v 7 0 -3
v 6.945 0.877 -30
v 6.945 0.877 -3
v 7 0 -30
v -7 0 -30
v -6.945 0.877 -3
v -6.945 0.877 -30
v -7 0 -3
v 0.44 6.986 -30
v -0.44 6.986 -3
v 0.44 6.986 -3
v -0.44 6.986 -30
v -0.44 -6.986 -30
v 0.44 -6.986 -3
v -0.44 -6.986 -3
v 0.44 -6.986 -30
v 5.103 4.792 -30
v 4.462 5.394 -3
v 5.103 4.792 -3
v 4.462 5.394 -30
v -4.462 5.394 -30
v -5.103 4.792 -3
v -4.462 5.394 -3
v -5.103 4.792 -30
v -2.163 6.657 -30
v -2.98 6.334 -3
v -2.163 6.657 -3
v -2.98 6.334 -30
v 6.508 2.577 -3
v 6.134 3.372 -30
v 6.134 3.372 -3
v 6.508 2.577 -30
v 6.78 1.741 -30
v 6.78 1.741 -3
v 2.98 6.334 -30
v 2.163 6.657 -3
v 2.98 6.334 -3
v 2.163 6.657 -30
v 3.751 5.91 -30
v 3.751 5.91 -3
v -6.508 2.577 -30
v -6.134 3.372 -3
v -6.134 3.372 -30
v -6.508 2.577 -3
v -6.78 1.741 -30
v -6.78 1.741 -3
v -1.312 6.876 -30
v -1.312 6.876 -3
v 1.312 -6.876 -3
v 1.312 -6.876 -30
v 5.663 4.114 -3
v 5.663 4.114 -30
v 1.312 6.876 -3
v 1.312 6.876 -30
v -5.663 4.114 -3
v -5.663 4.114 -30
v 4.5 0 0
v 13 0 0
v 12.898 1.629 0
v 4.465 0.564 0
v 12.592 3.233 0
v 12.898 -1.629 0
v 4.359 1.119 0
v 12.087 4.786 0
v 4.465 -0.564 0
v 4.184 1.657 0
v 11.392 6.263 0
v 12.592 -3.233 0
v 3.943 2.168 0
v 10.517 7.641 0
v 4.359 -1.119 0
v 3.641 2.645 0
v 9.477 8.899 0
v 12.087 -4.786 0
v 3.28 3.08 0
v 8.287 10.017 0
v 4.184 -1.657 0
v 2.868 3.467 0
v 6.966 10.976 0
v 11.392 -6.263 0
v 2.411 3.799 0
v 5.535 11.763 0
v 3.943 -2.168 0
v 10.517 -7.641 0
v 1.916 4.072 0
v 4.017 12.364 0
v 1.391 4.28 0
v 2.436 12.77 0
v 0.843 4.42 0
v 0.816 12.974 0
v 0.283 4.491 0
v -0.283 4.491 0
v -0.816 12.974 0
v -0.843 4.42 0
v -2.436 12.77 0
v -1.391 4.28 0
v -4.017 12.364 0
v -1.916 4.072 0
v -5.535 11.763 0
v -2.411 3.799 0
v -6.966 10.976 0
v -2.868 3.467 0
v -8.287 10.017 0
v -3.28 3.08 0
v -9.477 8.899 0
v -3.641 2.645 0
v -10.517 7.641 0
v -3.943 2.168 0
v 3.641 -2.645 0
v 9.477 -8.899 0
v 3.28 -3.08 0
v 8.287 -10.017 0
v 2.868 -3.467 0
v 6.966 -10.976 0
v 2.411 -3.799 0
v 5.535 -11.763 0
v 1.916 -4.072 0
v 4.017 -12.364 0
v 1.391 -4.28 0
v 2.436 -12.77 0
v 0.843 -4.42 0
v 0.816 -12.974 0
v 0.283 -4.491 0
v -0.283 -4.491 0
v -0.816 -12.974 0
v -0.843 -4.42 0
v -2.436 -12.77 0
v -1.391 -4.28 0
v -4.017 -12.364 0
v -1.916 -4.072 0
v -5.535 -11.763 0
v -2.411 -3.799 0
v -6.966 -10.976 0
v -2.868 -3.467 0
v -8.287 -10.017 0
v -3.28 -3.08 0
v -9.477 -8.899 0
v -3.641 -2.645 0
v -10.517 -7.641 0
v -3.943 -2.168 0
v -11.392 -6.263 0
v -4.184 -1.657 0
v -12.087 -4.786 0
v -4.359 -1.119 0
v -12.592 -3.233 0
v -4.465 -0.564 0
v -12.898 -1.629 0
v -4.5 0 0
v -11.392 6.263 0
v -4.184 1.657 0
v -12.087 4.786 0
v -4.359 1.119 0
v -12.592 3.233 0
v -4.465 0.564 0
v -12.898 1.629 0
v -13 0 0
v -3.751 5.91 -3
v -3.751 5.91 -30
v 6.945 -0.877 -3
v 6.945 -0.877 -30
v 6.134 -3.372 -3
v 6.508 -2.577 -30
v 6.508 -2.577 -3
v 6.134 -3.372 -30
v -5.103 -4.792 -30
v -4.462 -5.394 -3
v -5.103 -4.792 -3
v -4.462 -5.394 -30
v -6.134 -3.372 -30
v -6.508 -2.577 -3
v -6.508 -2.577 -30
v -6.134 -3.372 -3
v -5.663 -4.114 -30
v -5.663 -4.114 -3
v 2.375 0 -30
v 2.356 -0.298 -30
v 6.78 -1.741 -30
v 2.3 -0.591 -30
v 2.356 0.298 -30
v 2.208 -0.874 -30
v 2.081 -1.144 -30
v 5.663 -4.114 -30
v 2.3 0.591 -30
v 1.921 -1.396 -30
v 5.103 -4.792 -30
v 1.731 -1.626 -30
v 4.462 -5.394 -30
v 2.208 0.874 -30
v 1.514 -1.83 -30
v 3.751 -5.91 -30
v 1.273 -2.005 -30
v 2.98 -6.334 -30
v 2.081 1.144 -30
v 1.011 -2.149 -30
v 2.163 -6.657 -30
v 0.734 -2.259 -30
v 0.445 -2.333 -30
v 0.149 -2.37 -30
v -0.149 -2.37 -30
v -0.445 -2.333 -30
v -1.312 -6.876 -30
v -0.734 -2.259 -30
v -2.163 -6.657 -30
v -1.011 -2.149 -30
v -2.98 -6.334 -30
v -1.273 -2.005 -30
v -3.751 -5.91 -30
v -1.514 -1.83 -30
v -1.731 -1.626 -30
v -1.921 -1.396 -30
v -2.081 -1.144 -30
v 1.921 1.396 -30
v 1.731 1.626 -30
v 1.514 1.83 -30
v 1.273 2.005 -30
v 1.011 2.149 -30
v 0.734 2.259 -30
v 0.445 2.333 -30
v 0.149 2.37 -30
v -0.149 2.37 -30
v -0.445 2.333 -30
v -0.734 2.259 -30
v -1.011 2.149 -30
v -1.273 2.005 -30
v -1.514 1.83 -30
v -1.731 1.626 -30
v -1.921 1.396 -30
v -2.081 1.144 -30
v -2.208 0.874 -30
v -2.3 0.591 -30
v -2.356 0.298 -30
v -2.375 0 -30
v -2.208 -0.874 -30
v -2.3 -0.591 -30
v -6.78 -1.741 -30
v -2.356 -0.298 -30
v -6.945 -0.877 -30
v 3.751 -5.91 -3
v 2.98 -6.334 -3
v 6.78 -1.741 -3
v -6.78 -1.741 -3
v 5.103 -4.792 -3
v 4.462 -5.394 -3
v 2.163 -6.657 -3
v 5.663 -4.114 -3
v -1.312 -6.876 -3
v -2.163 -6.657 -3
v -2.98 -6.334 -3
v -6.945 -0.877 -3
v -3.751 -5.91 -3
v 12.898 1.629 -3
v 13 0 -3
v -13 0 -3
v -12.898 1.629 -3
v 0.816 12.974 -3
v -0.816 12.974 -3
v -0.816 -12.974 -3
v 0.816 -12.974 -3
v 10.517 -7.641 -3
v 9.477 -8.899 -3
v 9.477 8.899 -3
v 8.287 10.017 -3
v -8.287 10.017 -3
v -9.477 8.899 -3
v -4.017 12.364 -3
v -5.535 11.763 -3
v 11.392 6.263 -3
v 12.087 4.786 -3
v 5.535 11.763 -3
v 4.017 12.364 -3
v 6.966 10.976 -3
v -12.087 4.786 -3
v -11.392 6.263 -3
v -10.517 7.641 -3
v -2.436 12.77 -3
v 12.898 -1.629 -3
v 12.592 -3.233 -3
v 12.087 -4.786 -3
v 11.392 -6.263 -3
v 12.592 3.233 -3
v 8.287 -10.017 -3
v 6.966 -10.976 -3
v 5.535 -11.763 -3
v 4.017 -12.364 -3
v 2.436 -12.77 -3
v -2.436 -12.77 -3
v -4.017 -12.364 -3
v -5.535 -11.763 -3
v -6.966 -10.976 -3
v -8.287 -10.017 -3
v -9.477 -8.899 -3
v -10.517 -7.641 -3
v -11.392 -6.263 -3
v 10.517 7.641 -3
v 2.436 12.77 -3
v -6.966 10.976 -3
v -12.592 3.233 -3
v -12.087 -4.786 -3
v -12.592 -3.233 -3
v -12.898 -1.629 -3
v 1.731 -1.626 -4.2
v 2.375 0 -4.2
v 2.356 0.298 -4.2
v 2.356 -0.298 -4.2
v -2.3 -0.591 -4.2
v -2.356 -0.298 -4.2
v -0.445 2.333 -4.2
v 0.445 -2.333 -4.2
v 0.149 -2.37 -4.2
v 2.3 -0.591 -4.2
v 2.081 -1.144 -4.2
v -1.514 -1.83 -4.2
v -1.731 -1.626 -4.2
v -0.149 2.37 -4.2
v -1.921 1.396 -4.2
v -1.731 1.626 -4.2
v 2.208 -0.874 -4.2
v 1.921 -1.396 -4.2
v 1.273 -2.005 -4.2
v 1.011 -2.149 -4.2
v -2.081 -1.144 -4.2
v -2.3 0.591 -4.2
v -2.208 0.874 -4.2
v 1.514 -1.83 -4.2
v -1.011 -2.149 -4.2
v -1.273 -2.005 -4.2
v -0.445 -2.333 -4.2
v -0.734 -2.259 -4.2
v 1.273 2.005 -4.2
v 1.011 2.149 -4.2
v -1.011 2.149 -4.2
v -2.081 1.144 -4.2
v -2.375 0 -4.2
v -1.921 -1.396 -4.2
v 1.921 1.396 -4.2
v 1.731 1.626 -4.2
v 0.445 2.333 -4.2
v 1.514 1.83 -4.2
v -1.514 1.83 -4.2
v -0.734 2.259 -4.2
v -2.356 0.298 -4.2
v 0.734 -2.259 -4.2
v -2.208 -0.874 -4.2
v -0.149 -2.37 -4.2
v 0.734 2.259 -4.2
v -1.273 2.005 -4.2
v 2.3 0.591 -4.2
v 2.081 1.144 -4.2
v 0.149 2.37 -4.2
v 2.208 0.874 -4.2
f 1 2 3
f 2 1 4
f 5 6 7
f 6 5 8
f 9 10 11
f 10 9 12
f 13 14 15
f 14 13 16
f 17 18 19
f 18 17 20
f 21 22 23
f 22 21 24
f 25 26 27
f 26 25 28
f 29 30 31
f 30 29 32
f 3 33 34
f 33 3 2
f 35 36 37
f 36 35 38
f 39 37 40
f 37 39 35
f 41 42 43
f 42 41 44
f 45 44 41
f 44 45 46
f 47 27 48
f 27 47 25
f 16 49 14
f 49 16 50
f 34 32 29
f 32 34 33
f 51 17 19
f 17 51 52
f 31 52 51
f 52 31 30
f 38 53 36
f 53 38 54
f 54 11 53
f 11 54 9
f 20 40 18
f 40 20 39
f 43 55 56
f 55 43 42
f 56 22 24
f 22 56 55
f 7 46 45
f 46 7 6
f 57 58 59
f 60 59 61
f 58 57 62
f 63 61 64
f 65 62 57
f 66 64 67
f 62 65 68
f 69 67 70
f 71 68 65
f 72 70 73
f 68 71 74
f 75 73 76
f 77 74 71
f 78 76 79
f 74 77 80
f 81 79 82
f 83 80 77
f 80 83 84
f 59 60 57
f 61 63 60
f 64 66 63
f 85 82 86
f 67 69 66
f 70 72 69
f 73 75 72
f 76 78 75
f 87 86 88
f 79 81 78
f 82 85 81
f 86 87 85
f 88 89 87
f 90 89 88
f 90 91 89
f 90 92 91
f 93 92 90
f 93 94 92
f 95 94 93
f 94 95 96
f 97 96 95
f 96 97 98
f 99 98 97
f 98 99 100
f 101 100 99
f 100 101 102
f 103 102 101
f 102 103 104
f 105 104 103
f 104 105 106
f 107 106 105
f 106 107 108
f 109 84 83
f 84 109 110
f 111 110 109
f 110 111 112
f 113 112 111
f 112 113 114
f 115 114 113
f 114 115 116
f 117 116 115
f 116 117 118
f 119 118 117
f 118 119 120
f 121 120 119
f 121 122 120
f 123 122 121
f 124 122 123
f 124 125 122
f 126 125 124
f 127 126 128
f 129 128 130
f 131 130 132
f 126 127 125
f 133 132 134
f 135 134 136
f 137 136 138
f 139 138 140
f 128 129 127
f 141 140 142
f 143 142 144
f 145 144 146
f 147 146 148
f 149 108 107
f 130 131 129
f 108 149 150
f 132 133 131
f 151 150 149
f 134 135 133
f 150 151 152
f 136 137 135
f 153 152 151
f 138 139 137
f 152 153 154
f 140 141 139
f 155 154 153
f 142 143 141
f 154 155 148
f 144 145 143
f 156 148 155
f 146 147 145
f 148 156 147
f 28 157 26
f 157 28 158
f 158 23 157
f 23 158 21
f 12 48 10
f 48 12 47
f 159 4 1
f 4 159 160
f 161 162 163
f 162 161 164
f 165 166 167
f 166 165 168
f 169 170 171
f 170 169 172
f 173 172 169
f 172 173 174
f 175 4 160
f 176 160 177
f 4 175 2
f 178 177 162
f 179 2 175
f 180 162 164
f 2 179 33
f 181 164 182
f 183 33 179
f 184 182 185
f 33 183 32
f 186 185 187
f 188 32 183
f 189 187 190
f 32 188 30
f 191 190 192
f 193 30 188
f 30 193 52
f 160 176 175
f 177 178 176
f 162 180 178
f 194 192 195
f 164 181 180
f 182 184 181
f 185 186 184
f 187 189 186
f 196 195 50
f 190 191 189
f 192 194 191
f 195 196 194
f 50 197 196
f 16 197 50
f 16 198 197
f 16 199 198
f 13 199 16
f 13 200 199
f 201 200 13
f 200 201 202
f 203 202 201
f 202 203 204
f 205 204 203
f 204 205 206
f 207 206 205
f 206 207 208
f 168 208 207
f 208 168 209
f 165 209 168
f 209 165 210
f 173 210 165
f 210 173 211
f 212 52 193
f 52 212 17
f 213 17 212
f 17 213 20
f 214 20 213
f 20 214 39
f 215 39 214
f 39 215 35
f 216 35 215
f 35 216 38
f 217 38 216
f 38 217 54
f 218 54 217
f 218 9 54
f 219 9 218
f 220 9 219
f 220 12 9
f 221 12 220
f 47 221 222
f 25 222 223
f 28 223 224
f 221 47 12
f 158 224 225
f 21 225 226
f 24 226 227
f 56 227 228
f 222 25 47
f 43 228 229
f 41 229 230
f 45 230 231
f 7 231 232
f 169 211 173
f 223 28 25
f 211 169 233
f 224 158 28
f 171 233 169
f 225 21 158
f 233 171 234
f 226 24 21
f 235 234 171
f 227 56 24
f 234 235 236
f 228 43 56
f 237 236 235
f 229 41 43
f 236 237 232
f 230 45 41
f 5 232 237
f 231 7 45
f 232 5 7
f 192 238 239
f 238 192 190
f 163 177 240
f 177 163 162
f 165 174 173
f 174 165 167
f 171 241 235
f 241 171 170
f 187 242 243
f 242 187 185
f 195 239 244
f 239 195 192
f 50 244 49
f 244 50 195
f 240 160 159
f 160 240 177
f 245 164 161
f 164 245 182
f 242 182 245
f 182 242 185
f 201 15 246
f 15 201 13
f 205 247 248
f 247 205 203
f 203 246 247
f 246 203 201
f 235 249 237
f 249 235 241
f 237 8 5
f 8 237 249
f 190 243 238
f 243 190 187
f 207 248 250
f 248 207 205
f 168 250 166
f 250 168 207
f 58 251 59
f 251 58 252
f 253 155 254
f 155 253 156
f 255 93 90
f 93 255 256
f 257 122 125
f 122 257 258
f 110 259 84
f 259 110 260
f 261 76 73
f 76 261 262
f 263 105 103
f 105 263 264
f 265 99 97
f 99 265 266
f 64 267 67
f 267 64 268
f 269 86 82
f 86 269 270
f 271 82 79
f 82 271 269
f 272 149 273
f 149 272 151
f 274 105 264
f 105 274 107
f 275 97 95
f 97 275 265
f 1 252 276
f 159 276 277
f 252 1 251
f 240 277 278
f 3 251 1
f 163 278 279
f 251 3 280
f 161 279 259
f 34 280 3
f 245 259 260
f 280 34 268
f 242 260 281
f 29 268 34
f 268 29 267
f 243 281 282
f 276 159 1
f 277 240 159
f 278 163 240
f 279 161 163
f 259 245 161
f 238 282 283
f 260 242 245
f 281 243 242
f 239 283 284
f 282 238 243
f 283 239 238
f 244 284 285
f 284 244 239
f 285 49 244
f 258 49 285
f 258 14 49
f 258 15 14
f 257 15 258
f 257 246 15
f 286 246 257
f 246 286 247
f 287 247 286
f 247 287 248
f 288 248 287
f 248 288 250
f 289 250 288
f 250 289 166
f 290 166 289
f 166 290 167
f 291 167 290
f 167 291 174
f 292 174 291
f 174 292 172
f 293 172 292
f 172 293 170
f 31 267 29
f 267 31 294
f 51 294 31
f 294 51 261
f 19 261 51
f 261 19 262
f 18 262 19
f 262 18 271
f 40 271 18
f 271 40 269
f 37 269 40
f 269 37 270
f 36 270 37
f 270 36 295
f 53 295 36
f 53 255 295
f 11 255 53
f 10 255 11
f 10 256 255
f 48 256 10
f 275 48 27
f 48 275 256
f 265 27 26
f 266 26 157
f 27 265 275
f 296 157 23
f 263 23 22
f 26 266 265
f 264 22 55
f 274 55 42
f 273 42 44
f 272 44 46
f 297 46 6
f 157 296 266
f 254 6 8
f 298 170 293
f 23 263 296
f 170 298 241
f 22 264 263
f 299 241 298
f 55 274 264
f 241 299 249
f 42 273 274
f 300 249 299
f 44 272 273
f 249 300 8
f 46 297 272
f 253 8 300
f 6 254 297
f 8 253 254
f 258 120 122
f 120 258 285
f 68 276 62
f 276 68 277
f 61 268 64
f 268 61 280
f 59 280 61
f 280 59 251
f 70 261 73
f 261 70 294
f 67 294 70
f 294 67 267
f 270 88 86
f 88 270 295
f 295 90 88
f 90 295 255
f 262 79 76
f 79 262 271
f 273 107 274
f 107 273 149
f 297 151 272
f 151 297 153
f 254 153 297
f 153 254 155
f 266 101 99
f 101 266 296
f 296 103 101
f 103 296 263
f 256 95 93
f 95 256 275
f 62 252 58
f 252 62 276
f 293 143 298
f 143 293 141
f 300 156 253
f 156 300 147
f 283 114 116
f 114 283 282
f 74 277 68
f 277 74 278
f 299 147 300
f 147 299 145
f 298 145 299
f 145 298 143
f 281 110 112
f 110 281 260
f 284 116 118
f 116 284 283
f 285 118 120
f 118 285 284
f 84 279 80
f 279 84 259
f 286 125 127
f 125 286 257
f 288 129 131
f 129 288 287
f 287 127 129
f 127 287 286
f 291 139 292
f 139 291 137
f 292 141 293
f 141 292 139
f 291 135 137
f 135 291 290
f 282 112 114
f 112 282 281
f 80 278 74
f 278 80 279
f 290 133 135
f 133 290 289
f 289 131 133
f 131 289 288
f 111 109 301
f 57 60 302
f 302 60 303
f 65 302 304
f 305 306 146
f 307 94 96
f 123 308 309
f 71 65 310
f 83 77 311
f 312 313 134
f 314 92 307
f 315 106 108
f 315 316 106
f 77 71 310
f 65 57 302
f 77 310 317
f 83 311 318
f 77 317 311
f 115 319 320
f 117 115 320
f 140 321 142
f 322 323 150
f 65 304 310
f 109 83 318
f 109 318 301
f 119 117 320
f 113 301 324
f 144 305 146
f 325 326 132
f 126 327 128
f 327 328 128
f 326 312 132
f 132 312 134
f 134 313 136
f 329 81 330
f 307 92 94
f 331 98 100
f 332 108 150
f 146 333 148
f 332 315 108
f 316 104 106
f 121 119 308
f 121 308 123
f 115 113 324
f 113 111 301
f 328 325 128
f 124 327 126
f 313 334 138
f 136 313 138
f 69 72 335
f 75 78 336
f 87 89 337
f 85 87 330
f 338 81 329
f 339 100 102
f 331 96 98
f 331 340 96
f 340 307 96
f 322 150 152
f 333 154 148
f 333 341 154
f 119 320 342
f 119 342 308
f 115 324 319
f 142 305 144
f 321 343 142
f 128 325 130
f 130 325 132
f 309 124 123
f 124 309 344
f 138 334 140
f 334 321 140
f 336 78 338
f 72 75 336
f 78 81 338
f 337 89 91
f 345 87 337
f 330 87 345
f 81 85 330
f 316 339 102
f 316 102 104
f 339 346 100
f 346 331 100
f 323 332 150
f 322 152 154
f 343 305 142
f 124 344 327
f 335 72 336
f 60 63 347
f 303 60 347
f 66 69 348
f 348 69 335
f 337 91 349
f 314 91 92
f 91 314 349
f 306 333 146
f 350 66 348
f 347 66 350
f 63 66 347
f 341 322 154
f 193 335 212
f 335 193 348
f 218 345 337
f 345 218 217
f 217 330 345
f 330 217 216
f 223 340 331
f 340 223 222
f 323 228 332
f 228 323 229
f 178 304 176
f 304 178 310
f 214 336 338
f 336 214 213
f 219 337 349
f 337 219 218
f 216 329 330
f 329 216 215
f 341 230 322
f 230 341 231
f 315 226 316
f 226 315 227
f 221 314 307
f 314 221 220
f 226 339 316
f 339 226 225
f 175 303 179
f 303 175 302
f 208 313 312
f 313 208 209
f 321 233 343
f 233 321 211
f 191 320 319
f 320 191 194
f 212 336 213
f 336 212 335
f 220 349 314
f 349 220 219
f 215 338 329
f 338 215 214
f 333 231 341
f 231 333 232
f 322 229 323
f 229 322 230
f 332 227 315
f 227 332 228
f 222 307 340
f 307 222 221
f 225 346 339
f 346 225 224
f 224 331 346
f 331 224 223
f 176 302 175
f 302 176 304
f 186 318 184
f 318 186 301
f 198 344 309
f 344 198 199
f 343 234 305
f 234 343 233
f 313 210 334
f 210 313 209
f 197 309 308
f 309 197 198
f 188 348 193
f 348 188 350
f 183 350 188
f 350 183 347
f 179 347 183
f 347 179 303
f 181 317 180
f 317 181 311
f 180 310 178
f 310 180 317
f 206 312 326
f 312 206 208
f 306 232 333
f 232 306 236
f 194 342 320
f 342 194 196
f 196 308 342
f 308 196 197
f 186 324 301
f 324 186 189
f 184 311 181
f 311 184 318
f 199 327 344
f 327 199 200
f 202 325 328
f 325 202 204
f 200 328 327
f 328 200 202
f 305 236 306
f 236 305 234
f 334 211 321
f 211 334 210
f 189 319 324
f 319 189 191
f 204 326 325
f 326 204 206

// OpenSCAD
$fn = 50;


difference() {
	union() {
		translate(v = [0, 0, -30.0000000000]) {
			cylinder(h = 30, r = 7.0000000000);
		}
		translate(v = [0, 0, -3.0000000000]) {
			cylinder(h = 3, r = 13.0000000000);
		}
	}
	union() {
		translate(v = [0, 0, 0]) {
			rotate(a = [0, 0, 0]) {
				difference() {
					union() {
						#translate(v = [0, 0, -30.0000000000]) {
							cylinder(h = 30, r = 2.2500000000);
						}
						#translate(v = [0, 0, -4.2000000000]) {
							cylinder(h = 4.2000000000, r = 7.0000000000, r1 = 2.3750000000, r2 = 4.5000000000);
						}
						#translate(v = [0, 0, -30.0000000000]) {
							cylinder(h = 30, r = 2.3750000000);
						}
						#translate(v = [0, 0, -30.0000000000]) {
							cylinder(h = 30, r = 2.2500000000);
						}
					}
					union();
				}
			}
		}
	}
}
